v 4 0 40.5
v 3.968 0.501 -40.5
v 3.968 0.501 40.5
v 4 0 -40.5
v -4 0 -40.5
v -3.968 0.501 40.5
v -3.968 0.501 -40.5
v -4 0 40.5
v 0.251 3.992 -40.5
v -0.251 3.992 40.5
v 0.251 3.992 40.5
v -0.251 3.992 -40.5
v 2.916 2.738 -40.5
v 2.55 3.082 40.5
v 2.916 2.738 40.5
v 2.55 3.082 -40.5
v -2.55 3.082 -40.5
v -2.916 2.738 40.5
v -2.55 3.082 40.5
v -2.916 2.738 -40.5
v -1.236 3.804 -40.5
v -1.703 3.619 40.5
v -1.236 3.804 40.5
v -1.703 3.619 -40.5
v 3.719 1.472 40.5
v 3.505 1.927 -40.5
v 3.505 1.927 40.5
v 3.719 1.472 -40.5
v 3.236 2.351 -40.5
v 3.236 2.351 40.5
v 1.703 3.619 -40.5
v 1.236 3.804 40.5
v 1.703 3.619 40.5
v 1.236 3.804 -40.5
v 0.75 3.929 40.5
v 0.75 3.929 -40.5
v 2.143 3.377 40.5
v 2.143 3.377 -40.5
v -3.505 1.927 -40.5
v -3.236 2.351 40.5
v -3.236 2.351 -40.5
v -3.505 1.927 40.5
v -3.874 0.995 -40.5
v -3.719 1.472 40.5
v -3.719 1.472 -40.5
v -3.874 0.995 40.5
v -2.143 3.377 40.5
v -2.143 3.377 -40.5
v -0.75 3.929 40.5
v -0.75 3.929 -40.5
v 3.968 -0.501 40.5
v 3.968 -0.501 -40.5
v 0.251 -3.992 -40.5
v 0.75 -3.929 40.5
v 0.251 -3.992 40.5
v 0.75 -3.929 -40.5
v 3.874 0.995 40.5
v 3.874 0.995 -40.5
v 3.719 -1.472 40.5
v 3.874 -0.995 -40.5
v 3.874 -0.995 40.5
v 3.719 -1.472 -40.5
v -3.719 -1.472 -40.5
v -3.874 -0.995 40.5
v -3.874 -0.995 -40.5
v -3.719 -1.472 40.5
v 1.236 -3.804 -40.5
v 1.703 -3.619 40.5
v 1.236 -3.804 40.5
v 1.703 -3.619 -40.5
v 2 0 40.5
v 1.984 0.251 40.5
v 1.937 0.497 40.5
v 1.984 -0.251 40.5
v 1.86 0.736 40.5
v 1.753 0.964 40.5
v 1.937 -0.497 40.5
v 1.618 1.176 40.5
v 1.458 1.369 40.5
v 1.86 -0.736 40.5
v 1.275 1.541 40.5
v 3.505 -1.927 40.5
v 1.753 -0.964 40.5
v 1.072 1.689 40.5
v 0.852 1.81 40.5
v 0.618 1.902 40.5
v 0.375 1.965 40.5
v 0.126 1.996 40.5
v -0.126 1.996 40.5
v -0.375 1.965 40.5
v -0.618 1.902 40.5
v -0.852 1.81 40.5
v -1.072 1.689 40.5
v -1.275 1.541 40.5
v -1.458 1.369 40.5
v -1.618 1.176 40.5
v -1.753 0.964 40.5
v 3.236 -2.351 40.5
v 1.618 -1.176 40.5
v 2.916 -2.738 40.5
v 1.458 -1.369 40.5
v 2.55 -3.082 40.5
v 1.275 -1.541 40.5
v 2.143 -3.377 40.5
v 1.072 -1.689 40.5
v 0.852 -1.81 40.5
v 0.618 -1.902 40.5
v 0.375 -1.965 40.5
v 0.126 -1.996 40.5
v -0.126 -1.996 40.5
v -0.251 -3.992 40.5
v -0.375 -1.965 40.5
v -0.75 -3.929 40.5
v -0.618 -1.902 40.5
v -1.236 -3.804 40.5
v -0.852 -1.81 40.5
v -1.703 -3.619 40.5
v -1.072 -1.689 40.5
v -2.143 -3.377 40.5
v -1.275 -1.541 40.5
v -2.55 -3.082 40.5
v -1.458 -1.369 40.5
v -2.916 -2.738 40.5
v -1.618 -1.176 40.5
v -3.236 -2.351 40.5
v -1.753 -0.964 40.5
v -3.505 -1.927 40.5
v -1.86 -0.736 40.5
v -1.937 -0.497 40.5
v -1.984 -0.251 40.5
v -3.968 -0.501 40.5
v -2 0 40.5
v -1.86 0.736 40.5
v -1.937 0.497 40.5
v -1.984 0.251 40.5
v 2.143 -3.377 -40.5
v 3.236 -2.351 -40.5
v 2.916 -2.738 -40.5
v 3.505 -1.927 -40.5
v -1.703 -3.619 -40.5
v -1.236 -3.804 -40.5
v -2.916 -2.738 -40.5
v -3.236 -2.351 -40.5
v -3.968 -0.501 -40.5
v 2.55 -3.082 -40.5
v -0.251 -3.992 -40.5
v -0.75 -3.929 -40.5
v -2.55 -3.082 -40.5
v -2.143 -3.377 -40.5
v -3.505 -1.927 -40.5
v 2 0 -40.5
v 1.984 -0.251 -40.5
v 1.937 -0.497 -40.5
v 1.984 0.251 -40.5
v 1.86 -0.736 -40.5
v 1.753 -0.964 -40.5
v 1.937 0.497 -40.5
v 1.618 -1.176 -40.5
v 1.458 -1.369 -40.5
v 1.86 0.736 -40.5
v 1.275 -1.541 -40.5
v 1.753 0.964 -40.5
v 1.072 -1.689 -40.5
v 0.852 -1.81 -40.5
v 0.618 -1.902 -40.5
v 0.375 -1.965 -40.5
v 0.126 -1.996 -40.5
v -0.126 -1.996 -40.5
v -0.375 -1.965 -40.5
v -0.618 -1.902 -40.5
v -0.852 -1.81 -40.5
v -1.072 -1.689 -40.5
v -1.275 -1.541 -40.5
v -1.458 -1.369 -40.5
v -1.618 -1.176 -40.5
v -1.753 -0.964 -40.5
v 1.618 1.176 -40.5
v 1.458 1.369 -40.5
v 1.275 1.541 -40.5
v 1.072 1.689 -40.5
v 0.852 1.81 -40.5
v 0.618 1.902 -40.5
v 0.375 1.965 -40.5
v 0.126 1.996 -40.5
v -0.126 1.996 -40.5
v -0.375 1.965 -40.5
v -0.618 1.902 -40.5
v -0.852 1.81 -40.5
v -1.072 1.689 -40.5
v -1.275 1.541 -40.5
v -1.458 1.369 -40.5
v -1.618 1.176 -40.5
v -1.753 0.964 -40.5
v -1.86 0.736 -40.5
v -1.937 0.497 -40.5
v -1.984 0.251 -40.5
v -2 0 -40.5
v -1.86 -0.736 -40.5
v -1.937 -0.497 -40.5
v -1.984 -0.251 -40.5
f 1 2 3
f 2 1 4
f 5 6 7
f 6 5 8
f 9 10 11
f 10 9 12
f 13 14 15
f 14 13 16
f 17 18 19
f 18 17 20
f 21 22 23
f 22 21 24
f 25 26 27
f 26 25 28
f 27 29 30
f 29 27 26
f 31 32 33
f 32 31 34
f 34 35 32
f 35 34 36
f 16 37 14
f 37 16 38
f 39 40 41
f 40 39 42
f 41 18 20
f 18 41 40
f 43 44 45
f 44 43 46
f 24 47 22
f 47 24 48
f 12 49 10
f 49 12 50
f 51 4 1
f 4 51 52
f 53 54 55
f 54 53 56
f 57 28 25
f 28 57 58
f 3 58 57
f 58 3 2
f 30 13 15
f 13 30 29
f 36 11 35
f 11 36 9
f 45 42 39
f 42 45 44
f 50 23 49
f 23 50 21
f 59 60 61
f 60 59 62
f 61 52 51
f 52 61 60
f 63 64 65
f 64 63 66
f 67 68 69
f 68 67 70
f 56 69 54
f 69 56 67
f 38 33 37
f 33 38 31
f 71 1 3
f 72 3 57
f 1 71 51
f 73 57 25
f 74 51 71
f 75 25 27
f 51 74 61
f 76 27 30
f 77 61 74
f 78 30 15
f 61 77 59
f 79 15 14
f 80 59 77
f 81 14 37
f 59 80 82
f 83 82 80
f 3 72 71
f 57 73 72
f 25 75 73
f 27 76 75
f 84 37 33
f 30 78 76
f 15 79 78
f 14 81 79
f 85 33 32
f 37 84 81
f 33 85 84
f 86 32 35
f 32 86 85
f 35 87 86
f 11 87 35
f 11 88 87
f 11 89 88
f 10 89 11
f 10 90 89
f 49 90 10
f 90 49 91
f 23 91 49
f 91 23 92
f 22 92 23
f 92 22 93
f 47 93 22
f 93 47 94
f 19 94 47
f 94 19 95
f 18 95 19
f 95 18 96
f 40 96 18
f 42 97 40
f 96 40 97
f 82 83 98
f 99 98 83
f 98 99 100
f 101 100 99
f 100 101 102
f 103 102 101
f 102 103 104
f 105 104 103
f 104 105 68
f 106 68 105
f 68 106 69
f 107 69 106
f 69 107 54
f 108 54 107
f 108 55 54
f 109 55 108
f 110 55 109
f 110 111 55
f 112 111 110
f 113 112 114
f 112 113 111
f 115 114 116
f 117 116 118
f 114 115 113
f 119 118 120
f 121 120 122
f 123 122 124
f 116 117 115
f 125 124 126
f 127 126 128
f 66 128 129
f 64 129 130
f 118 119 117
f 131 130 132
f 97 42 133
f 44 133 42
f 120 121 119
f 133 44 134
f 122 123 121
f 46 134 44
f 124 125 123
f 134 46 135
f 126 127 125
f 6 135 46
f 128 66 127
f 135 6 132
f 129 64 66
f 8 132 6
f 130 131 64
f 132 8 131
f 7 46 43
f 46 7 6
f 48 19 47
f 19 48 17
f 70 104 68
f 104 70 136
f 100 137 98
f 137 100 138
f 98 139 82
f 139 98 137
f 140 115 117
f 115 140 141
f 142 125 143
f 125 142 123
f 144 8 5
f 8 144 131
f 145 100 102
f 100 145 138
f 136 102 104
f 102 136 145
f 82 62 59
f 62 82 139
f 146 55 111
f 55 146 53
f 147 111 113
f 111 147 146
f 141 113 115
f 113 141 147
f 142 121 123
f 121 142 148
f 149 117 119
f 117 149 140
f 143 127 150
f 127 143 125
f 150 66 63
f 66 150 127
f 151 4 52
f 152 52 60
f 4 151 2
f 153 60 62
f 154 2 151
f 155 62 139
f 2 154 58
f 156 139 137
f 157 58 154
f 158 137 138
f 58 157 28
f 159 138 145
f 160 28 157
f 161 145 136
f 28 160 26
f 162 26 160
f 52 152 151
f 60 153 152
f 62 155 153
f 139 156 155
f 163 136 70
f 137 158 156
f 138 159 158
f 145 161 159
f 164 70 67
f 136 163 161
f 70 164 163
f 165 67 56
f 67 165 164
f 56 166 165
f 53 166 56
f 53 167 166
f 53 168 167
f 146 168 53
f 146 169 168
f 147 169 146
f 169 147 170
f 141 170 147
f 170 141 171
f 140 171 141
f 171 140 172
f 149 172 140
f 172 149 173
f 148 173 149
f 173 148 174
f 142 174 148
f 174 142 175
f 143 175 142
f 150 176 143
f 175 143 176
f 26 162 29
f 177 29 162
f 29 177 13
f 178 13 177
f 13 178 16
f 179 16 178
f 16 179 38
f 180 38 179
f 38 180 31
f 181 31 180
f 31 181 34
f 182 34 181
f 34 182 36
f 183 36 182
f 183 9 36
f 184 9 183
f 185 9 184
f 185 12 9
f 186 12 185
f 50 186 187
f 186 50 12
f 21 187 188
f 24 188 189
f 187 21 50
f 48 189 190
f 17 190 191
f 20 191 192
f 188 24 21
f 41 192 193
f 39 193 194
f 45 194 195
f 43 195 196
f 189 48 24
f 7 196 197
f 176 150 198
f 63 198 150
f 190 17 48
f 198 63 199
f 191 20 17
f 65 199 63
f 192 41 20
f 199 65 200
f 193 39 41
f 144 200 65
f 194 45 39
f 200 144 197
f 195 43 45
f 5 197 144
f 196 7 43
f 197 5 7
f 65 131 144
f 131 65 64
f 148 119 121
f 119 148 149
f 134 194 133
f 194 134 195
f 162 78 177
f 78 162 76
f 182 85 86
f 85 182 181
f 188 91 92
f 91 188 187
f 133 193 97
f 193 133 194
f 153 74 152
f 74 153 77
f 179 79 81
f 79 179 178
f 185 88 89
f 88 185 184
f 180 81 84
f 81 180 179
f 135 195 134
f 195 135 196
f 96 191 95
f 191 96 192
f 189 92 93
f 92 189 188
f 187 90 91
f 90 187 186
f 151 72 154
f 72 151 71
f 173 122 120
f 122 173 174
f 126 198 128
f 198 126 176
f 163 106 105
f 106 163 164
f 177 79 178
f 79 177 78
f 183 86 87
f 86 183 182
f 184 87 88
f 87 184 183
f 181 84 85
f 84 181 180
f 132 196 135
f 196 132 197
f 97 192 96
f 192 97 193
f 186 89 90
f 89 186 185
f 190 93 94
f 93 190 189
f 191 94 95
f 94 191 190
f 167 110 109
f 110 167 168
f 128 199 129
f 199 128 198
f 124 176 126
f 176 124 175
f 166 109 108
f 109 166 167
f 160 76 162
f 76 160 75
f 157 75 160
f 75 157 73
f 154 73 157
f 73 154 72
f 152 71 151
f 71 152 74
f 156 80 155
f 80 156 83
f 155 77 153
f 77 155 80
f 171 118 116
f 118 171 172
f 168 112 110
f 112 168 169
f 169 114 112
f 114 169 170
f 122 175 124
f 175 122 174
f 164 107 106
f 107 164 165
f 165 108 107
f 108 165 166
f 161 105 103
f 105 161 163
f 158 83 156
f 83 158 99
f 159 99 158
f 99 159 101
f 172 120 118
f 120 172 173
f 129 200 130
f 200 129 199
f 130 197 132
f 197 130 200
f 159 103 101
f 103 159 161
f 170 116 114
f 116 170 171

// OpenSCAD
$fn = 50;


difference() {
	union() {
		translate(v = [0, 0, -40.5000000000]) {
			cylinder(h = 81, r = 4.0000000000);
		}
	}
	union() {
		translate(v = [0, 0, -100.0000000000]) {
			cylinder(h = 200, r = 2.0000000000);
		}
	}
}
